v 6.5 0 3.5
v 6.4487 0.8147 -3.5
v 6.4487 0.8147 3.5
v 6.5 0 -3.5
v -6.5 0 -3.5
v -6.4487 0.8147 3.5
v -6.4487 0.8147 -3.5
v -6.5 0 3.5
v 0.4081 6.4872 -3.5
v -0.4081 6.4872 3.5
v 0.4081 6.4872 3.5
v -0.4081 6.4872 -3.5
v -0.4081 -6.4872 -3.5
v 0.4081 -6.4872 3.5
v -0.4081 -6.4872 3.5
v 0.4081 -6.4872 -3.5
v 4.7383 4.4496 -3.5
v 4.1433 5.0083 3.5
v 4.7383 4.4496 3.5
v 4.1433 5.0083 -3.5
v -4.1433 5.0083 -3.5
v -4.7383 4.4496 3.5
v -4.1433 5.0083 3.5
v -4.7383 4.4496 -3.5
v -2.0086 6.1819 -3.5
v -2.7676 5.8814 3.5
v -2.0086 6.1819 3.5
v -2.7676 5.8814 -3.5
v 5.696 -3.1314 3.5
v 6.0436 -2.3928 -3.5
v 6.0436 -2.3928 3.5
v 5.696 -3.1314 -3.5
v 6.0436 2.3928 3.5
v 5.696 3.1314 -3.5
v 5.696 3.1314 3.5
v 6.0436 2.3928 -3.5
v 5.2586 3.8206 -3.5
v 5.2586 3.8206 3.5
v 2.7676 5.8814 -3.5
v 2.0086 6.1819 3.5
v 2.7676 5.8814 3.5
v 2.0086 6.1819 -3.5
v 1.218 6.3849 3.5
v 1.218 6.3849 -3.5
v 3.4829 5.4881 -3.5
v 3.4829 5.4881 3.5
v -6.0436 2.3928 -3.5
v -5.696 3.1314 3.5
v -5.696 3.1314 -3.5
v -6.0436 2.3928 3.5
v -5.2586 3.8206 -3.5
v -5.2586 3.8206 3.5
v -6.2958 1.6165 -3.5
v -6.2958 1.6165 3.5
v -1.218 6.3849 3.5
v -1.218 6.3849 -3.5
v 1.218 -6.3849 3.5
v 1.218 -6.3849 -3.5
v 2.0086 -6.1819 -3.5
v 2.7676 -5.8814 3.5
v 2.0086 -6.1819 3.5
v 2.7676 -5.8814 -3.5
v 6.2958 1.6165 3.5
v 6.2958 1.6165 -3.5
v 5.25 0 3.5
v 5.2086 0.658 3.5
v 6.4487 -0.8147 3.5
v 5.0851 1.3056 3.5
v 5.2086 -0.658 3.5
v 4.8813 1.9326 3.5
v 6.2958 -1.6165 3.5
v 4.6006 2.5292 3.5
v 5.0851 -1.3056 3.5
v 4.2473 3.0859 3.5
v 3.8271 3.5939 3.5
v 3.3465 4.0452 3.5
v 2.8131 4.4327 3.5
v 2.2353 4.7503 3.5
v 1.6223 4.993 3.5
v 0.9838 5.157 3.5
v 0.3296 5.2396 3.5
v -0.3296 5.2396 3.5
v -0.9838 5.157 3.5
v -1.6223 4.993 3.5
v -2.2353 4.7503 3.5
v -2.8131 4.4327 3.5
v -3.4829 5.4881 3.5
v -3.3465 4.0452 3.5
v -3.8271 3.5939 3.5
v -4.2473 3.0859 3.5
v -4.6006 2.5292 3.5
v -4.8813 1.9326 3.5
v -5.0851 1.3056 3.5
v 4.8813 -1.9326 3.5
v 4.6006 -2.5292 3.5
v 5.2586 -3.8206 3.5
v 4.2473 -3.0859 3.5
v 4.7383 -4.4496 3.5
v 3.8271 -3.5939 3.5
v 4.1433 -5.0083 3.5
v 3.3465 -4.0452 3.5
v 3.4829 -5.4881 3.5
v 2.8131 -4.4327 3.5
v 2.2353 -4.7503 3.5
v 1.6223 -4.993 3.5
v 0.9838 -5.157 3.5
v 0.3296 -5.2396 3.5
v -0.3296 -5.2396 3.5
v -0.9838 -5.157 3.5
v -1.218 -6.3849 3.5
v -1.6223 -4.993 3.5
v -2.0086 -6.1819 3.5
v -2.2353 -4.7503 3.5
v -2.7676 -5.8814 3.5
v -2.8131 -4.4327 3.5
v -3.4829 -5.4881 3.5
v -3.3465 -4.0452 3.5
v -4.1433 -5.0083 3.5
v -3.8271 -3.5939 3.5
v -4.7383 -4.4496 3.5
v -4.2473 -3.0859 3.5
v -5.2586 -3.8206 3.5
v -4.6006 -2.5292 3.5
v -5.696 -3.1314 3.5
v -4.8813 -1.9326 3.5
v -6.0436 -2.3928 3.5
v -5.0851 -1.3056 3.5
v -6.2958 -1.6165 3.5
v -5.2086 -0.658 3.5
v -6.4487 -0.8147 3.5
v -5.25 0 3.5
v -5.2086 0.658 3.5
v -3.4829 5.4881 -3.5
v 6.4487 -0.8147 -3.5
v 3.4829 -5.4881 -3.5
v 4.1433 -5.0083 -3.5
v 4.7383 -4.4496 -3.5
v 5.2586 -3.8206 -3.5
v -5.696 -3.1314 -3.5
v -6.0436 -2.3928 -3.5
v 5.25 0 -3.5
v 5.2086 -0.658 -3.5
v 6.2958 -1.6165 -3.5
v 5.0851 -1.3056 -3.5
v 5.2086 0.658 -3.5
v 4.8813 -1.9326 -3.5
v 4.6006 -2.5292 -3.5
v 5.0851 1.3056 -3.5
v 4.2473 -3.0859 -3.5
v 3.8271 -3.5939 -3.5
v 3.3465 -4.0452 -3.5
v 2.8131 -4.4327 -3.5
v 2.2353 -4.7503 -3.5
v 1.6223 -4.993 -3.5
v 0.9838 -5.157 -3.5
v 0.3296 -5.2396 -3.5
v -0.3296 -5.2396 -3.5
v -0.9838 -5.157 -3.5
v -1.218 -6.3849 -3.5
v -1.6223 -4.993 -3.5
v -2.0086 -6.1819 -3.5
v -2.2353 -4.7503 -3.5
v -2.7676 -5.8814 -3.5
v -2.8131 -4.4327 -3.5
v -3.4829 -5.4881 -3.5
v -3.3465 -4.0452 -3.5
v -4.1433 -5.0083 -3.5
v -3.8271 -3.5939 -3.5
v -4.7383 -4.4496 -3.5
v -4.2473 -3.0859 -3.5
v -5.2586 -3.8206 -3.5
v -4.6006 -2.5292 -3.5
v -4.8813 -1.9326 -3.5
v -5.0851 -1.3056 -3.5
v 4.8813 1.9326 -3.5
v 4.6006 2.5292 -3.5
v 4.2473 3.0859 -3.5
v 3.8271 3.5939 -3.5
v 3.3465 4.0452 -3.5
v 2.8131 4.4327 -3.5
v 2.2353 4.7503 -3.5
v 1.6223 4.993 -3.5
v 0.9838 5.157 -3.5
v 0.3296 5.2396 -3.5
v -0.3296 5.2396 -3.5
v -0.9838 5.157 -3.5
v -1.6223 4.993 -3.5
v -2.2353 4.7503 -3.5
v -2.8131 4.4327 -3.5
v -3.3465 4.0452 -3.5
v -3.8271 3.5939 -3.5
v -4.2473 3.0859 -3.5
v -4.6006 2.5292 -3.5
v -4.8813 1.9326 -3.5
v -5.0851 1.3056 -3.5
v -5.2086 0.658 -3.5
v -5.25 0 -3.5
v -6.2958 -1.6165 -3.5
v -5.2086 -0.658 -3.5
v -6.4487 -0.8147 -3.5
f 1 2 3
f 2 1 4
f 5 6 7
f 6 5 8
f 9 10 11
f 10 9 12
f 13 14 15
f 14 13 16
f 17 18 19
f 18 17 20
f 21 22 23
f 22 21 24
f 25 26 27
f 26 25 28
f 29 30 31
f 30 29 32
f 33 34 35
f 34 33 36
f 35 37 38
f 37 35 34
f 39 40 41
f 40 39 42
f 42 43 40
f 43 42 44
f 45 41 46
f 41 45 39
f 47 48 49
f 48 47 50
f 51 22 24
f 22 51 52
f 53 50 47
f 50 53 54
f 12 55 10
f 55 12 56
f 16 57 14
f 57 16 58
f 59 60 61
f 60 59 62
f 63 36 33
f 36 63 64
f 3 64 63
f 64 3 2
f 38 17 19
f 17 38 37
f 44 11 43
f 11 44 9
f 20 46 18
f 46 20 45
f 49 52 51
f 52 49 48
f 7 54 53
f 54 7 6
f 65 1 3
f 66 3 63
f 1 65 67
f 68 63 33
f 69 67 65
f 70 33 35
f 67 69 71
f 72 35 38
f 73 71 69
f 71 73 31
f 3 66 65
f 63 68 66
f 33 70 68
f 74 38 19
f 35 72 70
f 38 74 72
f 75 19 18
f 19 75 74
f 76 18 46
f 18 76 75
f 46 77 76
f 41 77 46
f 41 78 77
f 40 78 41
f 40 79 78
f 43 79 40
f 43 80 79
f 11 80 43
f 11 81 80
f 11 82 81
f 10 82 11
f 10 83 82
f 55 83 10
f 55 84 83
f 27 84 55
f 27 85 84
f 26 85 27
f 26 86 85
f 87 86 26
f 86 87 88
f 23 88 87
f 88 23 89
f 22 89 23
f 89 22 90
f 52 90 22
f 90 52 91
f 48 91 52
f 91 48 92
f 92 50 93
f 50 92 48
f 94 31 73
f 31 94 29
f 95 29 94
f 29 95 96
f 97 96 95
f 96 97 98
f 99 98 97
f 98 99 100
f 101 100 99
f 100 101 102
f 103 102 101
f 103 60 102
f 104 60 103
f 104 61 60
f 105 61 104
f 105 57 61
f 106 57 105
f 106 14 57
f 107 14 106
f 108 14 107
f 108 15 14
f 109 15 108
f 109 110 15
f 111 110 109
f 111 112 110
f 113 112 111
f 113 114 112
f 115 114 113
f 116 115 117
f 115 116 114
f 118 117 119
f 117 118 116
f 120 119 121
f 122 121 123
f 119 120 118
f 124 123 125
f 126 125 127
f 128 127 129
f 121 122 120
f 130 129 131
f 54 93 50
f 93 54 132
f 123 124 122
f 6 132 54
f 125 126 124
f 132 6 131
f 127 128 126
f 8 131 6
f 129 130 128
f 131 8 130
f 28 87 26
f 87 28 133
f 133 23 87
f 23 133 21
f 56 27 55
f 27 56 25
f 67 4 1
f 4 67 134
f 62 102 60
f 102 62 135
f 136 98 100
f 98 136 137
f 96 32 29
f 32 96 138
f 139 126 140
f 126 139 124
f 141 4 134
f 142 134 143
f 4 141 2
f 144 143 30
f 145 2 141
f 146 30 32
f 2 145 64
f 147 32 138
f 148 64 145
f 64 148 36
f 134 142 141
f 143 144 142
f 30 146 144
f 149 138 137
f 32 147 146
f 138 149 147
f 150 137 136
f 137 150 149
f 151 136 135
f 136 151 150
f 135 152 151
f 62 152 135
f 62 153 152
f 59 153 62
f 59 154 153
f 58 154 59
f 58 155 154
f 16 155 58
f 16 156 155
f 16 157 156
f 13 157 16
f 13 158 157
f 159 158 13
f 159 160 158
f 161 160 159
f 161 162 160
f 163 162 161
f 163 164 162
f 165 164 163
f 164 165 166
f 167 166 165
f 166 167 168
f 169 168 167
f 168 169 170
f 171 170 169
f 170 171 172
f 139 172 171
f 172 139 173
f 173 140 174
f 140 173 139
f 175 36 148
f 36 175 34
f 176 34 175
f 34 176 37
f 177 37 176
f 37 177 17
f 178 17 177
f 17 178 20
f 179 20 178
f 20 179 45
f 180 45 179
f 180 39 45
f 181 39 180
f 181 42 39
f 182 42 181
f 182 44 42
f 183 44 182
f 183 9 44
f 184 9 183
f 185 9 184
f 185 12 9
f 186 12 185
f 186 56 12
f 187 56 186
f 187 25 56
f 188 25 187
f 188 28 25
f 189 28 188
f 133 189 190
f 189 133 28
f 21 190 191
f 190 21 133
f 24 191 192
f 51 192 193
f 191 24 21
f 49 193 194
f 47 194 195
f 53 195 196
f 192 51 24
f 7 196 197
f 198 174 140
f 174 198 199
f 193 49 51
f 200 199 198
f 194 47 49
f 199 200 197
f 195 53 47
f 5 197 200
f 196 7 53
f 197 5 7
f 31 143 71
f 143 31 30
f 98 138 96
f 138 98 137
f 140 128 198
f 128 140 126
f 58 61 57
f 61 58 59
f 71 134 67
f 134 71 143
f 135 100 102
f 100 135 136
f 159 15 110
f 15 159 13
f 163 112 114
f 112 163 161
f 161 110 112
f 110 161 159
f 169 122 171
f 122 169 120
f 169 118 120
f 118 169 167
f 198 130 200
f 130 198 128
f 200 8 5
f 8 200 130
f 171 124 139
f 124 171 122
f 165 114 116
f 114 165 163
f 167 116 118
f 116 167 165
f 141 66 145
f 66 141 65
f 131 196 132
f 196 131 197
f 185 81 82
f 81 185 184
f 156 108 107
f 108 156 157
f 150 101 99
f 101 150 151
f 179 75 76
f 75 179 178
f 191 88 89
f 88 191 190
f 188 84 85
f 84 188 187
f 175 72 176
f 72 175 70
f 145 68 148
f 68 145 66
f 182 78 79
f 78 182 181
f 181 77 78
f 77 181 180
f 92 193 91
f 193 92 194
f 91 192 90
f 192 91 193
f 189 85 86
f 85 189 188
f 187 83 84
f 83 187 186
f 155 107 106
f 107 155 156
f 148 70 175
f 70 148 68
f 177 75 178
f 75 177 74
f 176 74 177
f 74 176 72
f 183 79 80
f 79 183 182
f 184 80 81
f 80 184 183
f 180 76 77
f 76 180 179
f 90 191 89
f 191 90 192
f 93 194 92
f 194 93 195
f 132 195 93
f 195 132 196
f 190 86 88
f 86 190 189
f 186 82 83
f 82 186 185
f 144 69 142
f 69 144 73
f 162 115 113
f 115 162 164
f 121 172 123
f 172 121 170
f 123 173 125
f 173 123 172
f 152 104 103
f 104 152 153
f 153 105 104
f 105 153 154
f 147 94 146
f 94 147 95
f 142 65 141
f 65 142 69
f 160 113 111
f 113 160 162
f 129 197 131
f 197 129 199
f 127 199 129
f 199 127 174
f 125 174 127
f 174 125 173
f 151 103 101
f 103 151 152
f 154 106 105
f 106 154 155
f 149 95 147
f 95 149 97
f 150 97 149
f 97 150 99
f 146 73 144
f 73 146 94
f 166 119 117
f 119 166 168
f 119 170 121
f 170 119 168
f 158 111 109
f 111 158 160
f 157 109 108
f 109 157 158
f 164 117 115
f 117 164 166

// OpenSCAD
$fn = 50;


difference() {
	union() {
		translate(v = [0, 0, -3.5000000000]) {
			cylinder(h = 7, r = 6.5000000000);
		}
	}
	union() {
		translate(v = [0, 0, -100.0000000000]) {
			cylinder(h = 200, r = 5.2500000000);
		}
	}
}
